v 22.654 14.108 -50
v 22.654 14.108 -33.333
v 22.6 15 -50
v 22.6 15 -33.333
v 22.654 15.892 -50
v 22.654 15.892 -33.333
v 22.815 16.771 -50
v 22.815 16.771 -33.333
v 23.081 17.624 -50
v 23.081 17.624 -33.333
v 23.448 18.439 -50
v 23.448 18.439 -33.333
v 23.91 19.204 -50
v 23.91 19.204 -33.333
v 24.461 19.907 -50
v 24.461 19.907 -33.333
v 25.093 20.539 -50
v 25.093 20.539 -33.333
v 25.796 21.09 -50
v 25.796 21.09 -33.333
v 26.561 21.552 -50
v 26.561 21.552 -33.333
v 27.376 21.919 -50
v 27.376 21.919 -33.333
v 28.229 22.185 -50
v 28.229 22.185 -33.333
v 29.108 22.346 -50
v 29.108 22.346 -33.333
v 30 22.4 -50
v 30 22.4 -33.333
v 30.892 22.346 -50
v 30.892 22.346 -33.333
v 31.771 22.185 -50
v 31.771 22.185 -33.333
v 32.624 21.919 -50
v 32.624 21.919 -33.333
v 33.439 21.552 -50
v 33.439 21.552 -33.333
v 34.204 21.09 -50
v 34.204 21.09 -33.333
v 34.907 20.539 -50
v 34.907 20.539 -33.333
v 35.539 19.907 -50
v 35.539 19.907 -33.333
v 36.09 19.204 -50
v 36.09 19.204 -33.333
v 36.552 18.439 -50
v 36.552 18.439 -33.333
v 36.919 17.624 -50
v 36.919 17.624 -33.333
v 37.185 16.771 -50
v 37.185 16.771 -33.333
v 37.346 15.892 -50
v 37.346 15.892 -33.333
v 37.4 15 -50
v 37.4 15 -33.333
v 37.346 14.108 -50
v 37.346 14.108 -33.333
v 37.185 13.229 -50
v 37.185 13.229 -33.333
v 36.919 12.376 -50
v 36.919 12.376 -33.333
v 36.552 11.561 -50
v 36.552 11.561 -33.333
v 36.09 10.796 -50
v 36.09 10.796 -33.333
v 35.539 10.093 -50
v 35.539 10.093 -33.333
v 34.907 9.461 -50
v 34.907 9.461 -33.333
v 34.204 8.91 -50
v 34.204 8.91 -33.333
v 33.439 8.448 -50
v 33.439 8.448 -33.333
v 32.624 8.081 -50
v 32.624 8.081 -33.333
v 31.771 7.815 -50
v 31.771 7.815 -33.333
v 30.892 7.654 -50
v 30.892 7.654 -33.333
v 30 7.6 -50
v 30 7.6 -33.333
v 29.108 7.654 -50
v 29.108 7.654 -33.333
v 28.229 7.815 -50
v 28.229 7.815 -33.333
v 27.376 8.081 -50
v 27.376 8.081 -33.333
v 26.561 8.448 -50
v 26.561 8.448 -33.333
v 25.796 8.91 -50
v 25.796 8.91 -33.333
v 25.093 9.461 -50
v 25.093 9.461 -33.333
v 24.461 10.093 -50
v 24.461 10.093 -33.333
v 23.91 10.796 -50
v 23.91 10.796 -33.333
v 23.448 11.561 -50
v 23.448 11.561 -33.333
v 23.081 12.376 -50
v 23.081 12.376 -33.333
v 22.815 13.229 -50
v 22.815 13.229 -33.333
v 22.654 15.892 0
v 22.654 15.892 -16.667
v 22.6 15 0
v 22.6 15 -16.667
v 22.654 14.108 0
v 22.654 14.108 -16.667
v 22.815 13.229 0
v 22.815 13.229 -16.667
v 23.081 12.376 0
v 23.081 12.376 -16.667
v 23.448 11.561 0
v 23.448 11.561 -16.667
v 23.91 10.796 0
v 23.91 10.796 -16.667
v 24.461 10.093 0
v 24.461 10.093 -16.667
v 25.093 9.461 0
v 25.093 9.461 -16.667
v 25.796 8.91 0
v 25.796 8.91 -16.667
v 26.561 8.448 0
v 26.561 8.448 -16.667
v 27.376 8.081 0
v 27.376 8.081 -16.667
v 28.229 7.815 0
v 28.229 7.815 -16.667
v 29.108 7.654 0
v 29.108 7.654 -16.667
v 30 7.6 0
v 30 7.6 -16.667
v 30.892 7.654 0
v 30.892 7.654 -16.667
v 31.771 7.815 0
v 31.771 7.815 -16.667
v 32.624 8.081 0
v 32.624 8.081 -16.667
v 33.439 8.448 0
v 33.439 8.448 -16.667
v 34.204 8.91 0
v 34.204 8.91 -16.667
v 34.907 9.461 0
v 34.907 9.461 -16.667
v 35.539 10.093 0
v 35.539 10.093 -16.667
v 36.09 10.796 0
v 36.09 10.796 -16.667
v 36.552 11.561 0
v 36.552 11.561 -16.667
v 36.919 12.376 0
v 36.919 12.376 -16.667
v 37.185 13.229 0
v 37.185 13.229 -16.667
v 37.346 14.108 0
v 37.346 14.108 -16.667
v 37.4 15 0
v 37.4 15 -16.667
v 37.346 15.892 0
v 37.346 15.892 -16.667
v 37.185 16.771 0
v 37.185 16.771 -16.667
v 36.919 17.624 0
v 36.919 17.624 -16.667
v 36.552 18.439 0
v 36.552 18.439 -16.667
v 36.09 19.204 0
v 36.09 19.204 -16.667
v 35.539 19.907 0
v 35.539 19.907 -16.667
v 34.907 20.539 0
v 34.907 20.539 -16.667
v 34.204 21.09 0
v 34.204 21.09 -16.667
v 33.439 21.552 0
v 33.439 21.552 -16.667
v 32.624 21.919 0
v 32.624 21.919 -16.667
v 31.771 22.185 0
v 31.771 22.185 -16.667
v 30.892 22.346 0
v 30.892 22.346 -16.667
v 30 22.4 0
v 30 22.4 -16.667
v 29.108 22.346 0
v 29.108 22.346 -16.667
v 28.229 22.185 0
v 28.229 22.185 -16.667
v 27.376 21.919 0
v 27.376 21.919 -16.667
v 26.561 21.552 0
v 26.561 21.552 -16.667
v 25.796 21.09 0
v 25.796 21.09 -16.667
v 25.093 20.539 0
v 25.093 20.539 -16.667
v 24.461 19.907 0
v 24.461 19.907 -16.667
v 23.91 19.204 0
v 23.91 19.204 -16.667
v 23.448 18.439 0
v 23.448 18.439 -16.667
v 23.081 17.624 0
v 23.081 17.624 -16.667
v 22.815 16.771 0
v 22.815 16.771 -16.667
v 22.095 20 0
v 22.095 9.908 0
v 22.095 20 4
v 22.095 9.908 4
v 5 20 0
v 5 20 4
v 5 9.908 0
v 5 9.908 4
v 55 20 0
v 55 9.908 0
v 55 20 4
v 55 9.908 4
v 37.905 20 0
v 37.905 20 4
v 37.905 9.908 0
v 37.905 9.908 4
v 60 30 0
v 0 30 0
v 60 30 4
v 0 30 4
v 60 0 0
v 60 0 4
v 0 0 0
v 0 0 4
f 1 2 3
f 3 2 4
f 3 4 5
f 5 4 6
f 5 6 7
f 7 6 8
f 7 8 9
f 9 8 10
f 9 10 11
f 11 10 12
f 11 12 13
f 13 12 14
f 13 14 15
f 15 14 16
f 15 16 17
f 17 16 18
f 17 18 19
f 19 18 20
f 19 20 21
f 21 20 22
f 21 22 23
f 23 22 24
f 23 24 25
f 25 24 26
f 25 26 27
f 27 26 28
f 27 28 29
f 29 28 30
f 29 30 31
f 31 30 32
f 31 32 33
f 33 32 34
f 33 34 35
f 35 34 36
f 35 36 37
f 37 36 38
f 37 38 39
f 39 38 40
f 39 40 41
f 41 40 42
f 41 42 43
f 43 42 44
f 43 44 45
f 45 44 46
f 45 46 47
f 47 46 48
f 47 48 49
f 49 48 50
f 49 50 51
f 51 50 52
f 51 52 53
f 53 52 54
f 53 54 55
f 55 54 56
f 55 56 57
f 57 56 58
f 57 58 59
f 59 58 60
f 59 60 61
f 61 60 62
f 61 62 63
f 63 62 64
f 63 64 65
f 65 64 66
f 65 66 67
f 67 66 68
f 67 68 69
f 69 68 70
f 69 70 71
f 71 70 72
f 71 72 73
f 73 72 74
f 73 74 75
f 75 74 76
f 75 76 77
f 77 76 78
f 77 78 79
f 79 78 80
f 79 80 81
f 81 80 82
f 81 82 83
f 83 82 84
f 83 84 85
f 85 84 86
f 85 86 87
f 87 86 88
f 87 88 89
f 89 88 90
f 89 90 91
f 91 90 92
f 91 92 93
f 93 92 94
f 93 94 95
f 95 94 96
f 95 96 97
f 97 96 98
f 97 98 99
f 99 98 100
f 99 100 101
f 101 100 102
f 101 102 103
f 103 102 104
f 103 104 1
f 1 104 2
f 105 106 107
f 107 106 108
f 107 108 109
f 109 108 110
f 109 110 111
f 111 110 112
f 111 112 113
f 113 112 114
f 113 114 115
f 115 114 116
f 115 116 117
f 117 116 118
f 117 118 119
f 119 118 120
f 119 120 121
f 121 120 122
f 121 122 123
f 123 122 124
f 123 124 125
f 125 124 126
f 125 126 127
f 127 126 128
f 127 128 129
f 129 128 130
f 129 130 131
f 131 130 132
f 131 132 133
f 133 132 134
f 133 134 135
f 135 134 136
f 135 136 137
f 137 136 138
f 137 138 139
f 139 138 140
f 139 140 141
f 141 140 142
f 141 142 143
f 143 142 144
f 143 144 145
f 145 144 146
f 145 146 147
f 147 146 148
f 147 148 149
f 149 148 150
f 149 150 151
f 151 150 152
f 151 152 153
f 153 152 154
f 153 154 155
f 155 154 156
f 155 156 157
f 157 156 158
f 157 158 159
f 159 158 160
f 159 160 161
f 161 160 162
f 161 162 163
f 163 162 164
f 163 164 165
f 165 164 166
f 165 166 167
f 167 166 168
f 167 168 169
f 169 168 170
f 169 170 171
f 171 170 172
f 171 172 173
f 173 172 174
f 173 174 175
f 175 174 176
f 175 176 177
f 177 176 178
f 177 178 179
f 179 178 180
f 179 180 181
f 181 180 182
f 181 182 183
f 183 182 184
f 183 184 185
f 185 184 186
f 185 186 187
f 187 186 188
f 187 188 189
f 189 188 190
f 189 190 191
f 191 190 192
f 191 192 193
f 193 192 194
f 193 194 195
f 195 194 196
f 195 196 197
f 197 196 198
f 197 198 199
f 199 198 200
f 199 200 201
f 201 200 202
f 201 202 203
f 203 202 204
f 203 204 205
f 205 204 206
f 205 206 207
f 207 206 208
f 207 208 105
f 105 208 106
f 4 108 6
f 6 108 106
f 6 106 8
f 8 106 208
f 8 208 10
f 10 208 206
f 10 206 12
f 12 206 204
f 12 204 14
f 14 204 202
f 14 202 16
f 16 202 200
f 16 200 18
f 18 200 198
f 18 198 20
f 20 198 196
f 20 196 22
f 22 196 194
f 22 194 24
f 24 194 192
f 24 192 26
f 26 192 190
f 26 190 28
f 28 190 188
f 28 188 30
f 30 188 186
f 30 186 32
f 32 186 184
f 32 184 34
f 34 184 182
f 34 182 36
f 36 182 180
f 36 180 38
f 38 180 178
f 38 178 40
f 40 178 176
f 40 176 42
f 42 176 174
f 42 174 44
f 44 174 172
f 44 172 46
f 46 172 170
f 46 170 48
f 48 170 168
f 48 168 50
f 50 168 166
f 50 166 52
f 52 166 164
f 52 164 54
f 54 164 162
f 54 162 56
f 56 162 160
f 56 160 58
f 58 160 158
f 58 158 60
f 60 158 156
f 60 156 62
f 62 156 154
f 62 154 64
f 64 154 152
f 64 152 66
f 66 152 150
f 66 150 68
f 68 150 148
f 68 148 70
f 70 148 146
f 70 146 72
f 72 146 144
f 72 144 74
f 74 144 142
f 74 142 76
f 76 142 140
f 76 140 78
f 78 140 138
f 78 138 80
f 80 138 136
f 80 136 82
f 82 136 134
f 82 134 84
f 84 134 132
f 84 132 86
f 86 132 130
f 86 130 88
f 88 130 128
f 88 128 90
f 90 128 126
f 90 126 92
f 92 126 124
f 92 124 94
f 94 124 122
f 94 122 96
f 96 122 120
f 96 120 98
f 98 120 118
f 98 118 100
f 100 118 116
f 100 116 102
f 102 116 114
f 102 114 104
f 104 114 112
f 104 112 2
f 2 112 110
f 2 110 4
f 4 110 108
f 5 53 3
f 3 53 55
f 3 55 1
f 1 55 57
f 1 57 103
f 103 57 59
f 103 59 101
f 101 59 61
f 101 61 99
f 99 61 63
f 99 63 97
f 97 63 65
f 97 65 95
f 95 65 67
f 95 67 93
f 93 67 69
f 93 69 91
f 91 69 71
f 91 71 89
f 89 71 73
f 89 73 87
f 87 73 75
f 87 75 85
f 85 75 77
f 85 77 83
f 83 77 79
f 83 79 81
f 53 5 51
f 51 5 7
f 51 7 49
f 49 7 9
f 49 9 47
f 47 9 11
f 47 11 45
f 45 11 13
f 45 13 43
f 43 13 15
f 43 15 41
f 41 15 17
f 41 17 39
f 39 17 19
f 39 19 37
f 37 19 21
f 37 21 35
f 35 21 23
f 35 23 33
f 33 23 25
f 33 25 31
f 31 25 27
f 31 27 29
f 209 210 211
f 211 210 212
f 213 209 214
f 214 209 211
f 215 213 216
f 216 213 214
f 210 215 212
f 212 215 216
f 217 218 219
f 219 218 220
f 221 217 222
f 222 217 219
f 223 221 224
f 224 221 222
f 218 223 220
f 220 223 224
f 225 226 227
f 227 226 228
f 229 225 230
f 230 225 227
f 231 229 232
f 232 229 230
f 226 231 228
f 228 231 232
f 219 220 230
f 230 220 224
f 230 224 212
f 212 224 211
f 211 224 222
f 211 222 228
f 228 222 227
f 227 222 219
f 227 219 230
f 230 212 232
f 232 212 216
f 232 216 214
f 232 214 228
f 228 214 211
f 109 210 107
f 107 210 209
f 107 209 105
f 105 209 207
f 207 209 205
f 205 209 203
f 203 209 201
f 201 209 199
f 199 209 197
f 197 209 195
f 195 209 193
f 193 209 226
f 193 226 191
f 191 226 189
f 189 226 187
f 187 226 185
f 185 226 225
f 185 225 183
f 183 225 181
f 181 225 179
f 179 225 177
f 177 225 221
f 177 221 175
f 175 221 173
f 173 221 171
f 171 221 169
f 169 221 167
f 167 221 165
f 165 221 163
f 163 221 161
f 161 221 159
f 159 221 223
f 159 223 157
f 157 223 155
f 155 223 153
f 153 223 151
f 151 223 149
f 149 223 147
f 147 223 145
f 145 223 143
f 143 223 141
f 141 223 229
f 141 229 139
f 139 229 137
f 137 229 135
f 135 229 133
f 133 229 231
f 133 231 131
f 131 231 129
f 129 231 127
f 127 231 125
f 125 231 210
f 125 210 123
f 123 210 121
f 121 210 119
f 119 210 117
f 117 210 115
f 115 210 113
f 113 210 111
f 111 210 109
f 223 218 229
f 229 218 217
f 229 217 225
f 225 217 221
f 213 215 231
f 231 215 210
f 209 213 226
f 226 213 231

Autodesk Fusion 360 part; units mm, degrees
sketch "Sketch1" plane through (0, 0, 0) normal (0, 0, 1) x (1, 0, 0)
  line L0 (0, 0) -> (60, 0)
  line L1 (60, 0) -> (60, 30)
  line L2 (60, 30) -> (0, 30)
  line L3 (0, 30) -> (0, 0)
  circle A0 centre (30, 15) radius 7.4
  line L4 (5, 20) -> (22.0948, 20)
  line L5 (22.0948, 20) -> (22.0948, 9.9085)
  line L6 (22.0948, 9.9085) -> (5, 9.9085)
  line L7 (5, 9.9085) -> (5, 20)
  line L8 (30, 30) -> (30, 0)
  line L9 (55, 9.9085) -> (55, 20)
  line L10 (55, 20) -> (37.9052, 20)
  line L11 (37.9052, 20) -> (37.9052, 9.9085)
  line L12 (37.9052, 9.9085) -> (55, 9.9085)
  dimension "d1" = 60
  dimension "d2" = 30
  dimension "d3" = 14.8
extrude "Extrude1" add sketch "Sketch1" along normal blind 4
extrude "Extrude2" add sketch "Sketch1" against normal blind 50 contours A0 L8 | A0 L8
